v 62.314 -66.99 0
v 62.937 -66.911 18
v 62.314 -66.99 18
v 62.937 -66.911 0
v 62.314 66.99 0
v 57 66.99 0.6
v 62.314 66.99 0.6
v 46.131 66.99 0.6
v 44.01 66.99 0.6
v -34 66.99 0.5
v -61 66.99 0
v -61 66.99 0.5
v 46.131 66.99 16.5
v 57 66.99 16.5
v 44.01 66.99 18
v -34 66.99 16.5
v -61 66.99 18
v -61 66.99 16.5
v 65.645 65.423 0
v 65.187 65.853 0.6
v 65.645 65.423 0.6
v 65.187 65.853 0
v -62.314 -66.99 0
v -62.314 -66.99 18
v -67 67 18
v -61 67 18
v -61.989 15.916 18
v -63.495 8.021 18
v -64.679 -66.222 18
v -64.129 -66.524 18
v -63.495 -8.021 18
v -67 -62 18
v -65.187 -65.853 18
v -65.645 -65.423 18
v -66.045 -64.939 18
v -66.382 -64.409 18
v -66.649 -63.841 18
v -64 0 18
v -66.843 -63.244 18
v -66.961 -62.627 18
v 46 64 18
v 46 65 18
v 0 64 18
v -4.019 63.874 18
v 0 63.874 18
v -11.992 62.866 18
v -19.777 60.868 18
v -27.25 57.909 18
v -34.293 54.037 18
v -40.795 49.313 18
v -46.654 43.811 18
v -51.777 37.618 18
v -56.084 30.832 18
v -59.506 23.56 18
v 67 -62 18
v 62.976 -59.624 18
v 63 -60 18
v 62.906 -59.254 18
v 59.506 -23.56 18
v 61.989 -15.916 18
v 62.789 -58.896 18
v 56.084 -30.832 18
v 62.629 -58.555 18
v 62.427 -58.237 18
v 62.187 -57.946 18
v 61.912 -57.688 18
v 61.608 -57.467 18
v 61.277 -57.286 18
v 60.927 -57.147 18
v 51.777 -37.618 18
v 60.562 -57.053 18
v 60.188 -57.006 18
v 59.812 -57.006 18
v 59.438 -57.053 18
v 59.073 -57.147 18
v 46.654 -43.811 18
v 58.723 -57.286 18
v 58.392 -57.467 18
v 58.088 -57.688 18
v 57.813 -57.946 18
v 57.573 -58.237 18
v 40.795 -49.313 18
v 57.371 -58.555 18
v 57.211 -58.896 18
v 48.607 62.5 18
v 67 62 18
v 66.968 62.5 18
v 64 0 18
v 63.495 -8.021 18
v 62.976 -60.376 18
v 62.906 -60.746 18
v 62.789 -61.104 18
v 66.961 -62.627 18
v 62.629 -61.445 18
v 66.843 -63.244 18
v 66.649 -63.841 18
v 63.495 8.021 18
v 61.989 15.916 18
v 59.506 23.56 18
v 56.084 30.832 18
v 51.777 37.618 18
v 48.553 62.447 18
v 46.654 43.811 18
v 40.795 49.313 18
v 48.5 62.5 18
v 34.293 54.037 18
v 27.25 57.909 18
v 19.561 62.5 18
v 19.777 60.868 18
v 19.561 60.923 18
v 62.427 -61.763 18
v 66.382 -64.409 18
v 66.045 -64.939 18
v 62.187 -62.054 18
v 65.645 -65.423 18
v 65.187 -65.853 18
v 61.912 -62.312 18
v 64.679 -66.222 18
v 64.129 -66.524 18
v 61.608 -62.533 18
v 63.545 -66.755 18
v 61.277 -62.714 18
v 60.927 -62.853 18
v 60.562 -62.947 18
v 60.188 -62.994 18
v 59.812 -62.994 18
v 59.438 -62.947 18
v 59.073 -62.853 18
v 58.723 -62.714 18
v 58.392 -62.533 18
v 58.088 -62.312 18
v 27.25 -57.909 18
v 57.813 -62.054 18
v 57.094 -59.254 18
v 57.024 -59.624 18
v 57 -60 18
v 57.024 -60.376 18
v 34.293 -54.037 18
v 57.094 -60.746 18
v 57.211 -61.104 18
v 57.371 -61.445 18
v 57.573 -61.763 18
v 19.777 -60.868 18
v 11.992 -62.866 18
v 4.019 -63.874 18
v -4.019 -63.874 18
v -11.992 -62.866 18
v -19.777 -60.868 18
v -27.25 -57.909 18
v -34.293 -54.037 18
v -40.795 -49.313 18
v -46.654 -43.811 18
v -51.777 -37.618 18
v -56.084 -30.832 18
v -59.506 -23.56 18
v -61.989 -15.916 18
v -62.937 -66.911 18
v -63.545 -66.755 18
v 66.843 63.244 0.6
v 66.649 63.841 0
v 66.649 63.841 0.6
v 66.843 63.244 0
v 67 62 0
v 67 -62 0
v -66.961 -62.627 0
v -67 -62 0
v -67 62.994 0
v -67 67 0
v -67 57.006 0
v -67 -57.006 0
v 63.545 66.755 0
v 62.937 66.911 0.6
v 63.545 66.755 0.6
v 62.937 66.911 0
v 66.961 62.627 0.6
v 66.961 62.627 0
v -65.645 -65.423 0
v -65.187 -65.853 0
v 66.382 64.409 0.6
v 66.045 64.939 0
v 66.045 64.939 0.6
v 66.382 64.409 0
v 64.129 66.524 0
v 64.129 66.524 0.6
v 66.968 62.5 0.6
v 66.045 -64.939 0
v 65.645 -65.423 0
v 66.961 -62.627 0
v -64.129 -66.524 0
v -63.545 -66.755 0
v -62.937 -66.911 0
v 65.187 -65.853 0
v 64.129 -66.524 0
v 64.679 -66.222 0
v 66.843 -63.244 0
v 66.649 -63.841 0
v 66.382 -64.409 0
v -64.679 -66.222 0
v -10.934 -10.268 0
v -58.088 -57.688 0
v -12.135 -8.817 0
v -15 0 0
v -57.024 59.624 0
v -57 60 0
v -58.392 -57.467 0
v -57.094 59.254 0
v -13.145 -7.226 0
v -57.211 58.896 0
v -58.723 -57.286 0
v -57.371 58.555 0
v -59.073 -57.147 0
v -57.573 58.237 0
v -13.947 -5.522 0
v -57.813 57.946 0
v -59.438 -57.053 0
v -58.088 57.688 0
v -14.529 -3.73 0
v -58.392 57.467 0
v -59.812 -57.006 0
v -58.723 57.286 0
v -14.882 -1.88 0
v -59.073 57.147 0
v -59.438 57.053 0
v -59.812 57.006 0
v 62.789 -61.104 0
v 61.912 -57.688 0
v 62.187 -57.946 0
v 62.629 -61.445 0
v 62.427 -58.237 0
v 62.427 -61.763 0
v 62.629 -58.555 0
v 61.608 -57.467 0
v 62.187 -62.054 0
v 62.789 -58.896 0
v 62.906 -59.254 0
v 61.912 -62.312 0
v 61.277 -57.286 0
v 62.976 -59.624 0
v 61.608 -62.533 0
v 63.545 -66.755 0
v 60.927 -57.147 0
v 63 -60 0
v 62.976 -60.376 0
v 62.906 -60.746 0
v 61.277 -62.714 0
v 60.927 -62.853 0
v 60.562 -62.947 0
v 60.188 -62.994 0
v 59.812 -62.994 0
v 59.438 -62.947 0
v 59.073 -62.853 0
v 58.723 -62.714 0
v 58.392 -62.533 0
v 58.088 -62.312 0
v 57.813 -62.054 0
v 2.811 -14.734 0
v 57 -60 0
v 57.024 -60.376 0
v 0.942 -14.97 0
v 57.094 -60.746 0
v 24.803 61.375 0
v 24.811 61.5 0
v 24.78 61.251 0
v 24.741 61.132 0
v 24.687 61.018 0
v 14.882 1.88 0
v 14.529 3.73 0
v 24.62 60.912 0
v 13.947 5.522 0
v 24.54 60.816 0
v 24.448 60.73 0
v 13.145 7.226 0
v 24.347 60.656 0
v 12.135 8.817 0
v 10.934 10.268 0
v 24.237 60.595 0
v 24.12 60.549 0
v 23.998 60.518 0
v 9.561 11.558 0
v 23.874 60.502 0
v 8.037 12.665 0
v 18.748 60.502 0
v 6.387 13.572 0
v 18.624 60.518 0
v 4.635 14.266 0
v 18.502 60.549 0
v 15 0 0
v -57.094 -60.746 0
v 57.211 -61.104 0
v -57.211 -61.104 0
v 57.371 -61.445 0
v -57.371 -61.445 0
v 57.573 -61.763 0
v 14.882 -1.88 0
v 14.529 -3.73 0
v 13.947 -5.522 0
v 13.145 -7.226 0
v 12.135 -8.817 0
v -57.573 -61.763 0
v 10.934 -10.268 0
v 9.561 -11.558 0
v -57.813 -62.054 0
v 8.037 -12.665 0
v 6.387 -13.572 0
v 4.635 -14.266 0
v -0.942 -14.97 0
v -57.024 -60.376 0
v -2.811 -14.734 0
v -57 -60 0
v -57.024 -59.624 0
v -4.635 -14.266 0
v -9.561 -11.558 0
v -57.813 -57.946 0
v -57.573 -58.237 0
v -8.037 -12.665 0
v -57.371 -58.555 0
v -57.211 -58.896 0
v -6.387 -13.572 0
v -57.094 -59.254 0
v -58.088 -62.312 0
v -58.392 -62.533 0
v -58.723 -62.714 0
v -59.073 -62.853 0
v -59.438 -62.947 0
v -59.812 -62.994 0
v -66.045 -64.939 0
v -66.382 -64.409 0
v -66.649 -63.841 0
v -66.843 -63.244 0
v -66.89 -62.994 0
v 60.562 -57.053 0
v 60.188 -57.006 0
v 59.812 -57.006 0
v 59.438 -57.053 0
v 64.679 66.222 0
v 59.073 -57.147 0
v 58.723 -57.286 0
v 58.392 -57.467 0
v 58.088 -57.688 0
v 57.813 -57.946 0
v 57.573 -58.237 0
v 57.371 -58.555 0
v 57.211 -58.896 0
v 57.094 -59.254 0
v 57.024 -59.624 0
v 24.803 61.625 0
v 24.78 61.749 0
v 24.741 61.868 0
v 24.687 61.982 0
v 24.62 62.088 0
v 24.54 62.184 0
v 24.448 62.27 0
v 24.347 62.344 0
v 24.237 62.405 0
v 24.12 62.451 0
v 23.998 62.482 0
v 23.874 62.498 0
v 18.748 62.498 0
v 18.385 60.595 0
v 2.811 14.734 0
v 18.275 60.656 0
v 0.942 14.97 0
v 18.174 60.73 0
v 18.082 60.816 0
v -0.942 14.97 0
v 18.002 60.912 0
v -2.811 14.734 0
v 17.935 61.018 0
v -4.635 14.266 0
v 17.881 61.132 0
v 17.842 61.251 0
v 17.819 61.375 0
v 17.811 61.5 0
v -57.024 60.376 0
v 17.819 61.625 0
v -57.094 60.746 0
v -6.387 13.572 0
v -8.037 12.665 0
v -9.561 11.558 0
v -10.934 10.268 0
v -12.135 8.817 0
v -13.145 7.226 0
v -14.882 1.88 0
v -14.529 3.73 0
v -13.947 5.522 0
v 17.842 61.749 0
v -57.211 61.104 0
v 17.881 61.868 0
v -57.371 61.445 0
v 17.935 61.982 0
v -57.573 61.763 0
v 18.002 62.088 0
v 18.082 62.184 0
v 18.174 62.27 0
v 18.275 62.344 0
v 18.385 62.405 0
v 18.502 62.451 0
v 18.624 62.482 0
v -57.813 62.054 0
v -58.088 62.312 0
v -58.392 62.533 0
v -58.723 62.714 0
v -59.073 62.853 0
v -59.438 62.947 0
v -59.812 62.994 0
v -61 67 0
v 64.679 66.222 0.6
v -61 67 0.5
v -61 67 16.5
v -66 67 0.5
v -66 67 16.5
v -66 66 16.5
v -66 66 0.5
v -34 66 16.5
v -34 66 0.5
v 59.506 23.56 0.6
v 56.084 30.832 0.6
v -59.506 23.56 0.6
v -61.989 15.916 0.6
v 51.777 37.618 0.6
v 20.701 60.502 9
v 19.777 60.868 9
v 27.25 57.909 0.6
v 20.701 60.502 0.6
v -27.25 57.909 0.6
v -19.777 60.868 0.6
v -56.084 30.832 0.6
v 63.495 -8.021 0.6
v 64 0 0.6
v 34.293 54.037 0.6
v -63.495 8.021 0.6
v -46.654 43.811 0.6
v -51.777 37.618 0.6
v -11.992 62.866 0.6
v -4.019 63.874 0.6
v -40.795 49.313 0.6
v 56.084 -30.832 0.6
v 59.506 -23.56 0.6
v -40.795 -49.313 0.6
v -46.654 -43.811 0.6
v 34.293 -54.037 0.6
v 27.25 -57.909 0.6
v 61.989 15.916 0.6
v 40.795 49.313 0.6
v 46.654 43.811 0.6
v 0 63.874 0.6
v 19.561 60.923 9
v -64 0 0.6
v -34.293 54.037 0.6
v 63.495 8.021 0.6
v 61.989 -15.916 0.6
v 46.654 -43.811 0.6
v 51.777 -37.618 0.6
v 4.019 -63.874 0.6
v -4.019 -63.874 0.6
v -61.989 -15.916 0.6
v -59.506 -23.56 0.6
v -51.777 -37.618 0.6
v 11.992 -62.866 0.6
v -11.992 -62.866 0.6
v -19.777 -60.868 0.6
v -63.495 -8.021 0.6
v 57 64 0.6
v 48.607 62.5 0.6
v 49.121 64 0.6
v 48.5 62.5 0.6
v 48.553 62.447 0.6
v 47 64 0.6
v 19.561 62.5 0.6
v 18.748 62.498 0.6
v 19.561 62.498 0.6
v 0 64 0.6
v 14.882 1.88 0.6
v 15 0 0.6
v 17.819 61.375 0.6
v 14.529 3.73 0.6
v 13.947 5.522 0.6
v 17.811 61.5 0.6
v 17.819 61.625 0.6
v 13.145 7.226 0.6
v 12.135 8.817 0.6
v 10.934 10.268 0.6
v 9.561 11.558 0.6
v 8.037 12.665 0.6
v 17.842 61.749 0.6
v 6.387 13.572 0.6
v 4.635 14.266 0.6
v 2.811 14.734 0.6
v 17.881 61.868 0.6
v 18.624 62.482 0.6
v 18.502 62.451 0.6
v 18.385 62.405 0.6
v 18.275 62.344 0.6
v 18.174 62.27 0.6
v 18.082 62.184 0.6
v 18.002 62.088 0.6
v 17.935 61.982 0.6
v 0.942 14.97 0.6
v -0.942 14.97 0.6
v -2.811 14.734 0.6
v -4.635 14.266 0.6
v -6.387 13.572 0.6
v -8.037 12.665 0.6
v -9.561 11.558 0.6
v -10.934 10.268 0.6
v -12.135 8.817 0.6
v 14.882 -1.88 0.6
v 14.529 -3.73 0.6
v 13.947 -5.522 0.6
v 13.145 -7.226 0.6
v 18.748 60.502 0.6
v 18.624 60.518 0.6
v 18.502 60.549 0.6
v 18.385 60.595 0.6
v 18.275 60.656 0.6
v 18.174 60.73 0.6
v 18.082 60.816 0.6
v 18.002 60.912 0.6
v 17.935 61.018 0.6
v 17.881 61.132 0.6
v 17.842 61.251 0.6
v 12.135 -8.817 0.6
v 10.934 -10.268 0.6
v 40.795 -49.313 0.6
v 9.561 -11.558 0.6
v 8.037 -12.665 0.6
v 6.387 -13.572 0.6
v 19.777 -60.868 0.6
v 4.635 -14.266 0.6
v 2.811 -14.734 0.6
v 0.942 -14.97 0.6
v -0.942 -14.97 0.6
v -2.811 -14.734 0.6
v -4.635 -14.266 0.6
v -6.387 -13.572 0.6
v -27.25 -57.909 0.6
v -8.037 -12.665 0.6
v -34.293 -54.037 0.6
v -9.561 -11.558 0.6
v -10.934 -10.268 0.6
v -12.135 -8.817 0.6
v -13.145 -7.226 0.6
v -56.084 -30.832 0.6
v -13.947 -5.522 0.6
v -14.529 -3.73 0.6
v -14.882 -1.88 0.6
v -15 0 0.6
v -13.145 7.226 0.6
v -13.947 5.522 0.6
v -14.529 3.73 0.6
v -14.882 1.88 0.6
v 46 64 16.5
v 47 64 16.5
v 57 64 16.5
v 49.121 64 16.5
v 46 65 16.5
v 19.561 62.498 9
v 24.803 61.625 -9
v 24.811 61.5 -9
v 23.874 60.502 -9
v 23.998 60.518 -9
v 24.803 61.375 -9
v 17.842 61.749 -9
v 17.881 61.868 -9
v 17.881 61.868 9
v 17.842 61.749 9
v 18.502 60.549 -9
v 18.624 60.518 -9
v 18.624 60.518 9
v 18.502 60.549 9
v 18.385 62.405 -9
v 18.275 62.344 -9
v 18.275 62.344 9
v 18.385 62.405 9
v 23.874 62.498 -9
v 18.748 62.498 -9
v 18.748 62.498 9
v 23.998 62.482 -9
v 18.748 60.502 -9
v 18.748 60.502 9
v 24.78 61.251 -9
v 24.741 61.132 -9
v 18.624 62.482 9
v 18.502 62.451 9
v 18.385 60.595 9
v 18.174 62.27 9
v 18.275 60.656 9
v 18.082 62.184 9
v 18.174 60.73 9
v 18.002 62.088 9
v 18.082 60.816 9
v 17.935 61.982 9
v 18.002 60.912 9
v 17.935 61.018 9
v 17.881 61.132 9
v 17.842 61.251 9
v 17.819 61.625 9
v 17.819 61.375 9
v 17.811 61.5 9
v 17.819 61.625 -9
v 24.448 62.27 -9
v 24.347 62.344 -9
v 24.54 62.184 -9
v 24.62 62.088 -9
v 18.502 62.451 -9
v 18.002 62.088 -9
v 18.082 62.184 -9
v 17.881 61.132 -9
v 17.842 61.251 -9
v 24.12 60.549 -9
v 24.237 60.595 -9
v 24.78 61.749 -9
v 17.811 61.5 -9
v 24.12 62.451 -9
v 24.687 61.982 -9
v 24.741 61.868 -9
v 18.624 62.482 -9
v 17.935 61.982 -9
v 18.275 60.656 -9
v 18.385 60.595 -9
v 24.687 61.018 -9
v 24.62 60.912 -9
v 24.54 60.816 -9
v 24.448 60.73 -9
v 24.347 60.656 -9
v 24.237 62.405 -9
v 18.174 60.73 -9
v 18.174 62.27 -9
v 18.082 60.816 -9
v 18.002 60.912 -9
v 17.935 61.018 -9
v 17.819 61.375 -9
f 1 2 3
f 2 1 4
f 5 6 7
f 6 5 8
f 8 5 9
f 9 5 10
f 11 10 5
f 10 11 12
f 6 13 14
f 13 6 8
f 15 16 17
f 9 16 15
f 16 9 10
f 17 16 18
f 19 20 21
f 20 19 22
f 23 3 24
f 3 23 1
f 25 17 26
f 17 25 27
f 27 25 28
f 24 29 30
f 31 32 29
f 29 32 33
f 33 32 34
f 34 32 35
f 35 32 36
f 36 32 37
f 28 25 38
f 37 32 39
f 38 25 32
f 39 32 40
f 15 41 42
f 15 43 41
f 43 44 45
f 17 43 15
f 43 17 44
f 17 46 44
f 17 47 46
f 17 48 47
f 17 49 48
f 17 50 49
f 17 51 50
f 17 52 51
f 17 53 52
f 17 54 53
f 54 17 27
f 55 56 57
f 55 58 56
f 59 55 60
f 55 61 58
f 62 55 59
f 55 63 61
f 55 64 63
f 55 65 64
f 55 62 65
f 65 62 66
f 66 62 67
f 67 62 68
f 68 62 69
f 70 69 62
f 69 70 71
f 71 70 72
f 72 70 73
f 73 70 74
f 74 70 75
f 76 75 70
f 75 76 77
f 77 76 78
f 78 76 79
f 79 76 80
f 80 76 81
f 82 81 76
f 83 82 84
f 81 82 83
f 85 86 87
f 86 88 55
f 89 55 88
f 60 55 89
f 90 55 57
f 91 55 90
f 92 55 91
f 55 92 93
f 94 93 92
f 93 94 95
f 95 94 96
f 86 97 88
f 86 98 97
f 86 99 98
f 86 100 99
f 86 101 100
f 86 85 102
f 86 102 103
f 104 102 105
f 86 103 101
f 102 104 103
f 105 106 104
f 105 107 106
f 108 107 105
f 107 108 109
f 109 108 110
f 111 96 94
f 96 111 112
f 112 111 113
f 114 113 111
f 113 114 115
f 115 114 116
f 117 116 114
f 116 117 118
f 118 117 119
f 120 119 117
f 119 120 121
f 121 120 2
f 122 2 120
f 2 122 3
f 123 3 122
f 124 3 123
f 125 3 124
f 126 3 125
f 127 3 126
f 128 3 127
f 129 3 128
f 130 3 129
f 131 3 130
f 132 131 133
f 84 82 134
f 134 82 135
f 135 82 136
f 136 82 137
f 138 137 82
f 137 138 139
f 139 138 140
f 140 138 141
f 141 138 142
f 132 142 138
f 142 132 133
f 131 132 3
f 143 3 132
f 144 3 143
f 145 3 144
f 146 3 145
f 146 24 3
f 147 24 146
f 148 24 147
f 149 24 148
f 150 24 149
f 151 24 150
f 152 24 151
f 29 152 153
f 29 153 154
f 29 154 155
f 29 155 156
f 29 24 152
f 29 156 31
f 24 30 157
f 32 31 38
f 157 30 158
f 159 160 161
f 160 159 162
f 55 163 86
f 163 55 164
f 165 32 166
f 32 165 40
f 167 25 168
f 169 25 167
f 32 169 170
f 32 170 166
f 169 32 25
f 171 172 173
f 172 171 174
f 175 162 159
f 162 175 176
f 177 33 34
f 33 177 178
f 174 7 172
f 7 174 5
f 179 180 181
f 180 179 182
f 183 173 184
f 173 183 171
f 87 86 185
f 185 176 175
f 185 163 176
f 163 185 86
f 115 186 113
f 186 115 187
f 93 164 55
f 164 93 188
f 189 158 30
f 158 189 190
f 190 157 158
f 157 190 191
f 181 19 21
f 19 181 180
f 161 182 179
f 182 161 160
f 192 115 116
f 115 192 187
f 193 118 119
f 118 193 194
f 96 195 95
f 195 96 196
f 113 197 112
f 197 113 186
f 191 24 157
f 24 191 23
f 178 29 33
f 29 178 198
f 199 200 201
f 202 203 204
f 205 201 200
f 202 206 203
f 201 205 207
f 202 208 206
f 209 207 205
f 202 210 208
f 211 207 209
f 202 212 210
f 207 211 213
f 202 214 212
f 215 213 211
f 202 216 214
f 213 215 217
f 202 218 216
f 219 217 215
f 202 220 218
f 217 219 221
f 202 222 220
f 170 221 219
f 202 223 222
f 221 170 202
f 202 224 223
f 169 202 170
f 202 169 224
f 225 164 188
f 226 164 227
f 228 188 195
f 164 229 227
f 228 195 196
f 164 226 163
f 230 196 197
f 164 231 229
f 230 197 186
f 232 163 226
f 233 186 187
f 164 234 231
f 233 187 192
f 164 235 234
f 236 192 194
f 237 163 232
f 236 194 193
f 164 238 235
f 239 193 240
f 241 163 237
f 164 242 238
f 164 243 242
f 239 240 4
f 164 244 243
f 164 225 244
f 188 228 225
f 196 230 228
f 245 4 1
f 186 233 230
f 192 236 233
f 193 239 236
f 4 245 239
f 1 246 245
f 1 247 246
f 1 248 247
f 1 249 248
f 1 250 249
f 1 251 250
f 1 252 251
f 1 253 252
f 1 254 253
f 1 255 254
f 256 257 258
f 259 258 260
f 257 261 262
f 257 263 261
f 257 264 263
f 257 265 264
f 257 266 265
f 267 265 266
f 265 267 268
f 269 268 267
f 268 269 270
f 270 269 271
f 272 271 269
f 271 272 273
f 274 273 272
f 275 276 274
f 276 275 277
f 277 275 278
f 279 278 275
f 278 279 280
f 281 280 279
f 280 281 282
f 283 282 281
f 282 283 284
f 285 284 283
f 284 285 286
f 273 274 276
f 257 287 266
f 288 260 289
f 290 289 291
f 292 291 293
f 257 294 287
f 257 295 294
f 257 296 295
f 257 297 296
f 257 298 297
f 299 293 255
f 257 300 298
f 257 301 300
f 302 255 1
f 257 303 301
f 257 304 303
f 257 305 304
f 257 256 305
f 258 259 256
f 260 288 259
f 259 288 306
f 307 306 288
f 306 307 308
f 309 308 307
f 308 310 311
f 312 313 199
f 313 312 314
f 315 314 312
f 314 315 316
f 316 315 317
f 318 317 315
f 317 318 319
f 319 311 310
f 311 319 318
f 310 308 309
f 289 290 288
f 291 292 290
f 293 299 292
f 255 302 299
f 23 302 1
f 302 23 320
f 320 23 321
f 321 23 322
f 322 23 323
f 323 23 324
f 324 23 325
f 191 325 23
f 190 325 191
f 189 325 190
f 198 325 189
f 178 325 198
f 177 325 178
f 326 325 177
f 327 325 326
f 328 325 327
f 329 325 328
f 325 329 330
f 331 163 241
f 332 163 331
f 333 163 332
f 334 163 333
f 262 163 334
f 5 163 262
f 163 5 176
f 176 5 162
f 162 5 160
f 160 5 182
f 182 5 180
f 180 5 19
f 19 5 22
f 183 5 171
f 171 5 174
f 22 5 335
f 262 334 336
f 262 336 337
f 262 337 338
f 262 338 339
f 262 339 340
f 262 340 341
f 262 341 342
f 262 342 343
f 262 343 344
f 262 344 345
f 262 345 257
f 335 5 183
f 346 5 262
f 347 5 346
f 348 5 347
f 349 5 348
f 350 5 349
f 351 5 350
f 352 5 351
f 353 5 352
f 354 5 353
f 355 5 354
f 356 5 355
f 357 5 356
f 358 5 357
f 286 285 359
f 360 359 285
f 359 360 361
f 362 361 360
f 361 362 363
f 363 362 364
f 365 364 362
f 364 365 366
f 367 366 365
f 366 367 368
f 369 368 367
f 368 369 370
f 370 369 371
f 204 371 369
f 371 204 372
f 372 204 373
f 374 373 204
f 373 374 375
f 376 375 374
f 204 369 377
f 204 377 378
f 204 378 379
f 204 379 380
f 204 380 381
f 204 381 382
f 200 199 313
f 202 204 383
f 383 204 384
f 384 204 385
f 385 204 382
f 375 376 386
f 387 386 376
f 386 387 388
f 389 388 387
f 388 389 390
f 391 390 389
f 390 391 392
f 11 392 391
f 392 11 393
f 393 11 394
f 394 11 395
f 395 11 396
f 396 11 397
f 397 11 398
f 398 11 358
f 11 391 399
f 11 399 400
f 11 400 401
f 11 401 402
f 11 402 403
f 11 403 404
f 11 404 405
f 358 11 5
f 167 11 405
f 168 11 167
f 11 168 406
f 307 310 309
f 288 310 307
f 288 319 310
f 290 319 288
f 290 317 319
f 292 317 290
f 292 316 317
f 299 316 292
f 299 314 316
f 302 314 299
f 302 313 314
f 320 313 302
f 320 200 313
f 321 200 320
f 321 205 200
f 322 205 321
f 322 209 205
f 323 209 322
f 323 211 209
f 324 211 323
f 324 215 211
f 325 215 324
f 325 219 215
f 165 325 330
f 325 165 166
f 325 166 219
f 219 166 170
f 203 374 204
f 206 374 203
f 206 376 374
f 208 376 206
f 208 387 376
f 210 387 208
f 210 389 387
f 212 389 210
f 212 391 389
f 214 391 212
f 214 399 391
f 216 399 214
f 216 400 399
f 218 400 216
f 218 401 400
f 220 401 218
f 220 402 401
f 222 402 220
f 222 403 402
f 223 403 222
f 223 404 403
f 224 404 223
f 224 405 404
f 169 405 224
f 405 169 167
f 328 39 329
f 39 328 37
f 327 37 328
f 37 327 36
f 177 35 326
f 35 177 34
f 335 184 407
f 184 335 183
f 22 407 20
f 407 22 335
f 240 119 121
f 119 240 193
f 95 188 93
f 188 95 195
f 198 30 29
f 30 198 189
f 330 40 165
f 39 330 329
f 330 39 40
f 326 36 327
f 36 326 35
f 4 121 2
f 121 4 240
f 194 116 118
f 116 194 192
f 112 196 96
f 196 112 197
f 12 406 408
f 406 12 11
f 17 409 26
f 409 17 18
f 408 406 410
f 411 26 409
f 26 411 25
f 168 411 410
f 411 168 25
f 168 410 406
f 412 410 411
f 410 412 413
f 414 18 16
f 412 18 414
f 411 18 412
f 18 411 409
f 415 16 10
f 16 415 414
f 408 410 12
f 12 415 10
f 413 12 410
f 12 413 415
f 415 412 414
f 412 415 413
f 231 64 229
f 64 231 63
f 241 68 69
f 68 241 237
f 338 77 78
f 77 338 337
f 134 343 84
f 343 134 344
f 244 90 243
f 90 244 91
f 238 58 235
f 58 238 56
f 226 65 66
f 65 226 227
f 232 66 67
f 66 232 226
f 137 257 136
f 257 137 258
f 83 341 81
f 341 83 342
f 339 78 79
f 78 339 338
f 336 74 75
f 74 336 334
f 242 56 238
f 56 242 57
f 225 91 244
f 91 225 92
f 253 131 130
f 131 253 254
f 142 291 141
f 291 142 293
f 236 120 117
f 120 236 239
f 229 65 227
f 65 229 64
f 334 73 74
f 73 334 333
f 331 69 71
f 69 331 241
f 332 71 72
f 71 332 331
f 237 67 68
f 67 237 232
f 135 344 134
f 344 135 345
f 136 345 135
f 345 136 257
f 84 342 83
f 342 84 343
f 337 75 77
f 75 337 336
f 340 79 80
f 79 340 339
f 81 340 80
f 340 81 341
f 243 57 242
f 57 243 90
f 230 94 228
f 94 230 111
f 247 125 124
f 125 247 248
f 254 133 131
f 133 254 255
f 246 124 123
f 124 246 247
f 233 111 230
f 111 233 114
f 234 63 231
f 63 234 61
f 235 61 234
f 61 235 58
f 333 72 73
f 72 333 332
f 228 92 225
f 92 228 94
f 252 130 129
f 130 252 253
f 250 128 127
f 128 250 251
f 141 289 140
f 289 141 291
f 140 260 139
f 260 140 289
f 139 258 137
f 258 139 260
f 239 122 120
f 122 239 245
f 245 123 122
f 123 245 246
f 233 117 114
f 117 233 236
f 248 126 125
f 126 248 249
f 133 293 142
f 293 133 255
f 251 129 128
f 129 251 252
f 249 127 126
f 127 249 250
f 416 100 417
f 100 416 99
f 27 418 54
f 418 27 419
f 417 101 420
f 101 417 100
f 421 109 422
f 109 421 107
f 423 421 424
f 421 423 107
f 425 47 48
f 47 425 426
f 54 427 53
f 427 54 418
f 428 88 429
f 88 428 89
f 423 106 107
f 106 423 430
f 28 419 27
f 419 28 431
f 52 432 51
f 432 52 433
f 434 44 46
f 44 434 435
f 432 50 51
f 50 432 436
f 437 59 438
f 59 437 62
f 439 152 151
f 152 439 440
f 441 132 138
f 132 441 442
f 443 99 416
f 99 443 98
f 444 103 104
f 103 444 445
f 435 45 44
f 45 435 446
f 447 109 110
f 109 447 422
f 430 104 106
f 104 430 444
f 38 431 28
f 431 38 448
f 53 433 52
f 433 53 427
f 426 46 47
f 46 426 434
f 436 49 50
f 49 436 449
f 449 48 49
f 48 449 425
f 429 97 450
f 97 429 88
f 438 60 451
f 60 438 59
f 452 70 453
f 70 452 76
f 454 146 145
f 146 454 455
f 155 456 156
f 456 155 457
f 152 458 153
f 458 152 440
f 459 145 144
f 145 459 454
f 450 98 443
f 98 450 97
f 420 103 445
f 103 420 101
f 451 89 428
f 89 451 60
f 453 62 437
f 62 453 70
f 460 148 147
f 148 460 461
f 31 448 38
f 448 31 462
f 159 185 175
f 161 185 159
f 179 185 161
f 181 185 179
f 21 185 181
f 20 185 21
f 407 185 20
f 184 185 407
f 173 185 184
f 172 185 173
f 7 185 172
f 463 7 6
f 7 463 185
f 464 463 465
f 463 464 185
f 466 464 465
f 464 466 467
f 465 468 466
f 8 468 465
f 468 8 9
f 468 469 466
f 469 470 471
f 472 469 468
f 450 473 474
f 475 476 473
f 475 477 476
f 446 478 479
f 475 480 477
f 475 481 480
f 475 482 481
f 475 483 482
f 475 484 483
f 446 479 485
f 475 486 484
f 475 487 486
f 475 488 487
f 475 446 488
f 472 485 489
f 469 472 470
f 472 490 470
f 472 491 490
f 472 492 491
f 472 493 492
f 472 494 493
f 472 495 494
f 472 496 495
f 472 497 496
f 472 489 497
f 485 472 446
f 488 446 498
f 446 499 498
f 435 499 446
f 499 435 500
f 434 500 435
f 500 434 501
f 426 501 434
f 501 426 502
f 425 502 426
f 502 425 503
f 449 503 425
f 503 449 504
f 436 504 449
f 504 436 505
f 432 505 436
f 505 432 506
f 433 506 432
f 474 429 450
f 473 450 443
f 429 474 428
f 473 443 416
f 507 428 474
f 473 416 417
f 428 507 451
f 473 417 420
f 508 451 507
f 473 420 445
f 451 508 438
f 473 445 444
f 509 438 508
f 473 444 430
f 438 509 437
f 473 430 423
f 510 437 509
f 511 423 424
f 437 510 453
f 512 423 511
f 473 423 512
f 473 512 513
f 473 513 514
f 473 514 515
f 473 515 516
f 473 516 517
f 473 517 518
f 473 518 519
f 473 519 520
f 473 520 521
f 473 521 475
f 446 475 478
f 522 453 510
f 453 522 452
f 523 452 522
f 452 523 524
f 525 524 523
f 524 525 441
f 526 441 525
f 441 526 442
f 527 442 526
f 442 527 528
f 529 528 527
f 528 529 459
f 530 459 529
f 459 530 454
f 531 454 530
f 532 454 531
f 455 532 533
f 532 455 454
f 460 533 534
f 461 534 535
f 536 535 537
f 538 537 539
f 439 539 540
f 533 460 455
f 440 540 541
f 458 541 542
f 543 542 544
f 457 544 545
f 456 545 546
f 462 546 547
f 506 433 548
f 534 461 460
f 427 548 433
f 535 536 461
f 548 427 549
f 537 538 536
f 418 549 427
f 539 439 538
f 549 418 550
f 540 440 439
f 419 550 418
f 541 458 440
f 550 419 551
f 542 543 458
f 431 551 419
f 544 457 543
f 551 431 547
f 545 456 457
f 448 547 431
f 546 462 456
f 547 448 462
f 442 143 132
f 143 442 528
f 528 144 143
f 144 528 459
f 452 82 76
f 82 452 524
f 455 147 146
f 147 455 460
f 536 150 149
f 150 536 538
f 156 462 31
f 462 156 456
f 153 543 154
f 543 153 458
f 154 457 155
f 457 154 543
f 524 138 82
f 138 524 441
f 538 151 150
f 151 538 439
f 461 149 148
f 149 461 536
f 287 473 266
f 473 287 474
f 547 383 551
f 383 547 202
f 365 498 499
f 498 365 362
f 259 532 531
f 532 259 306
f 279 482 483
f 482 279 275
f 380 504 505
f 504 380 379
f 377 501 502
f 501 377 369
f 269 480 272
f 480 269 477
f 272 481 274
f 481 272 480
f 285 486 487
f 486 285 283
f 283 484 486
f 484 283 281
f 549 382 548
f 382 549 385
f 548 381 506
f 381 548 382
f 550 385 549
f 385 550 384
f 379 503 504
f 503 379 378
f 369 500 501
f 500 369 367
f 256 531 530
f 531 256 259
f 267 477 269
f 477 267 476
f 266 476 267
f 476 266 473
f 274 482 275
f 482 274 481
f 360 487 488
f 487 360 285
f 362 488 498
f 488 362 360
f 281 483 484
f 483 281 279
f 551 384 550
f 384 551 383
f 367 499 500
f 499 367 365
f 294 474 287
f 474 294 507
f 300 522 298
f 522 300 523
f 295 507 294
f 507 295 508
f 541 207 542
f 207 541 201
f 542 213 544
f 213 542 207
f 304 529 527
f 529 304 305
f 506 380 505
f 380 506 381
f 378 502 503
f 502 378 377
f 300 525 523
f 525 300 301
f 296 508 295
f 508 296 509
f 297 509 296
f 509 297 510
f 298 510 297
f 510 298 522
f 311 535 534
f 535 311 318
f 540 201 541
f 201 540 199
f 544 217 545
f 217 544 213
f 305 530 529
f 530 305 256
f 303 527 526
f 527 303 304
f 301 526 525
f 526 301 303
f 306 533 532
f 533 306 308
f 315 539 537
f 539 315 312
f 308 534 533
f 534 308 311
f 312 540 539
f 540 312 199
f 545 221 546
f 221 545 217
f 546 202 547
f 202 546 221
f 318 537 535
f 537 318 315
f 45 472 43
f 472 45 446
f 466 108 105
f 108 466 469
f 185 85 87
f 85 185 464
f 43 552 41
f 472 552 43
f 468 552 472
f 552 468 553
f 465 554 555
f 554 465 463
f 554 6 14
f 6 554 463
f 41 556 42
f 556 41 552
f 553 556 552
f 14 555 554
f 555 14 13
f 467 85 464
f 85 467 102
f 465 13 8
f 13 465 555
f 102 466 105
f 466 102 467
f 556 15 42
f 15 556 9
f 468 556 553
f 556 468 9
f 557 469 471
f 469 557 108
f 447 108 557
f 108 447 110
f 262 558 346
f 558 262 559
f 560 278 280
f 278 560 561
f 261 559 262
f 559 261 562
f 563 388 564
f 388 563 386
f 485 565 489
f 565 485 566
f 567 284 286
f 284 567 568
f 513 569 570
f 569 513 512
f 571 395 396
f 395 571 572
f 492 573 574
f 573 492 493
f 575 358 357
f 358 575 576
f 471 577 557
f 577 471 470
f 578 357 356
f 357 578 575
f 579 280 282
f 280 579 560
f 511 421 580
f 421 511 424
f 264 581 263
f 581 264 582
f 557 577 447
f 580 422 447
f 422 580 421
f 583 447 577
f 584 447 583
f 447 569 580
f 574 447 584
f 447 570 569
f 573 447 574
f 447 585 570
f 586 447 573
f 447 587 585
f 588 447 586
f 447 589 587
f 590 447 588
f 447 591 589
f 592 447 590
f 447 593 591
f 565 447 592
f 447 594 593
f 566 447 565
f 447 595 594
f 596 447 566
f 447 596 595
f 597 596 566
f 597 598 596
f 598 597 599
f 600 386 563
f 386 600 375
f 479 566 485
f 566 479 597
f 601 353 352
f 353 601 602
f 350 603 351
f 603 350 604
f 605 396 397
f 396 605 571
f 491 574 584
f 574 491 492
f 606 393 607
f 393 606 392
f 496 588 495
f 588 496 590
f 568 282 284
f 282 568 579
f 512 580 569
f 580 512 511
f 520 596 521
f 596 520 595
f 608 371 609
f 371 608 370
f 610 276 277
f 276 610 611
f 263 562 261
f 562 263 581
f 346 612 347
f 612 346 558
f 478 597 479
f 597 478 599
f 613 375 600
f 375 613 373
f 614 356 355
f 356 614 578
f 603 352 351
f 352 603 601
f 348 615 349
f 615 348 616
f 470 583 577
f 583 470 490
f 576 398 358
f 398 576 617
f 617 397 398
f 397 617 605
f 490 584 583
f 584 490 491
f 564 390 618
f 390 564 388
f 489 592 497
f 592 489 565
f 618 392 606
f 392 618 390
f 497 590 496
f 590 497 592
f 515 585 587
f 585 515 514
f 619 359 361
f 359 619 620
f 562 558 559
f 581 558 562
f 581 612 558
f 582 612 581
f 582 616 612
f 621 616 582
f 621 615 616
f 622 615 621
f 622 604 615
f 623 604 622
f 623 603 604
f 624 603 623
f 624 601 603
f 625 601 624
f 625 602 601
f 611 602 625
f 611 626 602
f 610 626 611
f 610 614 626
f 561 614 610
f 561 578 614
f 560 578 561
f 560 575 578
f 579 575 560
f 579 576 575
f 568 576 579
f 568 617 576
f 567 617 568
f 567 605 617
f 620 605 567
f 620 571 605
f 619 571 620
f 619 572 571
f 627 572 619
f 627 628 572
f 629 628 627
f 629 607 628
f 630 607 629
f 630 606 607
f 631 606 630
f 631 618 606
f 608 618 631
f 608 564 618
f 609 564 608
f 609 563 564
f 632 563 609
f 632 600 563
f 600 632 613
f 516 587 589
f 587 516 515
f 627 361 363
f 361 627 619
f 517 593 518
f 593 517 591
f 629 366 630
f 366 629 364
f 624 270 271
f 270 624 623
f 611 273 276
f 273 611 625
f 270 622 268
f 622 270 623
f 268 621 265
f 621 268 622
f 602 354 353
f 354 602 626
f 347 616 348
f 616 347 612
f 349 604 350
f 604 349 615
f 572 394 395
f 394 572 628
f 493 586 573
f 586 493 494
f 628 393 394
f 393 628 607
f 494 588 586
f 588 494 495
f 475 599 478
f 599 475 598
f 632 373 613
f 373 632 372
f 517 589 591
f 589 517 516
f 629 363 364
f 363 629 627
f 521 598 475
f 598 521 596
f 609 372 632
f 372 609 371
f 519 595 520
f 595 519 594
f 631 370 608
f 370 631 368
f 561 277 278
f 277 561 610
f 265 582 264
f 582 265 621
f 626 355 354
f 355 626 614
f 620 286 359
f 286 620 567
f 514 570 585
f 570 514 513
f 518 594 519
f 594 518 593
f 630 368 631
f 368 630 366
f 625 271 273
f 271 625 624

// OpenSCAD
$fn = 50;


union() {
	difference() {
		union() {
			hull() {
				translate(v = [-62.0000000000, 62.0000000000, 0]) {
					cylinder(h = 18, r = 5);
				}
				translate(v = [62.0000000000, 62.0000000000, 0]) {
					cylinder(h = 18, r = 5);
				}
				translate(v = [-62.0000000000, -62.0000000000, 0]) {
					cylinder(h = 18, r = 5);
				}
				translate(v = [62.0000000000, -62.0000000000, 0]) {
					cylinder(h = 18, r = 5);
				}
			}
			translate(v = [-67.0000000000, 61.0000000000, 0]) {
				cube(size = [6, 6, 18]);
			}
		}
		union() {
			translate(v = [-67.5000000000, -60.0000000000, -250.0000000000]) {
				rotate(a = [0, 0, 0]) {
					difference() {
						union() {
							hull() {
								translate(v = [7.5000000000, 0, 0]) {
									cylinder(h = 250, r = 3.0000000000, r1 = 3.0000000000, r2 = 3.0000000000);
								}
								translate(v = [-7.5000000000, 0, 0]) {
									cylinder(h = 250, r = 3.0000000000, r1 = 3.0000000000, r2 = 3.0000000000);
								}
							}
						}
						union();
					}
				}
			}
			translate(v = [-67.5000000000, 60.0000000000, -250.0000000000]) {
				rotate(a = [0, 0, 0]) {
					difference() {
						union() {
							hull() {
								translate(v = [7.5000000000, 0, 0]) {
									cylinder(h = 250, r = 3.0000000000, r1 = 3.0000000000, r2 = 3.0000000000);
								}
								translate(v = [-7.5000000000, 0, 0]) {
									cylinder(h = 250, r = 3.0000000000, r1 = 3.0000000000, r2 = 3.0000000000);
								}
							}
						}
						union();
					}
				}
			}
			translate(v = [-66.0000000000, 66.0000000000, 0.5000000000]) {
				cube(size = [32, 1, 16]);
			}
			translate(v = [60.0000000000, -60.0000000000, 0]) {
				cylinder(h = 100, r = 3.0000000000);
			}
			translate(v = [0, 0, 0.6000000000]) {
				cylinder(h = 20.4000000000, r = 64.0000000000);
			}
			translate(v = [0, 0, -9.0000000000]) {
				cylinder(h = 18, r = 15.0000000000);
			}
			translate(v = [0.0000000000, 62.5000000000, 0.6000000000]) {
				cube(size = [67.0000000000, 1.5000000000, 20.4000000000]);
			}
			translate(v = [57.0000000000, 62.5000000000, 0.6000000000]) {
				cube(size = [10, 4.5000000000, 20.4000000000]);
			}
			translate(v = [46.0000000000, 62.5000000000, 16.5000000000]) {
				cube(size = [21, 4.5000000000, 1.5000000000]);
			}
			translate(v = [43.2500000000, 67.7500000000, 0.6000000000]) {
				rotate(a = [0, 0, -45]) {
					cube(size = [7.5000000000, 1.5000000000, 20.4000000000]);
				}
			}
			translate(v = [12.0610000000, 60.5000000000, 0.6000000000]) {
				cube(size = [7.5000000000, 2, 17.4000000000]);
			}
		}
	}
	union() {
		translate(v = [21.3110000000, 61.5000000000, -9.0000000000]) {
			rotate(a = [0, 0, 0]) {
				difference() {
					union() {
						#hull() {
							#translate(v = [2.5000000000, 0, 0]) {
								cylinder(h = 18, r = 1.0000000000, r1 = 1.0000000000, r2 = 1.0000000000);
							}
							#translate(v = [-2.5000000000, 0, 0]) {
								cylinder(h = 18, r = 1.0000000000, r1 = 1.0000000000, r2 = 1.0000000000);
							}
						}
					}
					union();
				}
			}
		}
	}
}
